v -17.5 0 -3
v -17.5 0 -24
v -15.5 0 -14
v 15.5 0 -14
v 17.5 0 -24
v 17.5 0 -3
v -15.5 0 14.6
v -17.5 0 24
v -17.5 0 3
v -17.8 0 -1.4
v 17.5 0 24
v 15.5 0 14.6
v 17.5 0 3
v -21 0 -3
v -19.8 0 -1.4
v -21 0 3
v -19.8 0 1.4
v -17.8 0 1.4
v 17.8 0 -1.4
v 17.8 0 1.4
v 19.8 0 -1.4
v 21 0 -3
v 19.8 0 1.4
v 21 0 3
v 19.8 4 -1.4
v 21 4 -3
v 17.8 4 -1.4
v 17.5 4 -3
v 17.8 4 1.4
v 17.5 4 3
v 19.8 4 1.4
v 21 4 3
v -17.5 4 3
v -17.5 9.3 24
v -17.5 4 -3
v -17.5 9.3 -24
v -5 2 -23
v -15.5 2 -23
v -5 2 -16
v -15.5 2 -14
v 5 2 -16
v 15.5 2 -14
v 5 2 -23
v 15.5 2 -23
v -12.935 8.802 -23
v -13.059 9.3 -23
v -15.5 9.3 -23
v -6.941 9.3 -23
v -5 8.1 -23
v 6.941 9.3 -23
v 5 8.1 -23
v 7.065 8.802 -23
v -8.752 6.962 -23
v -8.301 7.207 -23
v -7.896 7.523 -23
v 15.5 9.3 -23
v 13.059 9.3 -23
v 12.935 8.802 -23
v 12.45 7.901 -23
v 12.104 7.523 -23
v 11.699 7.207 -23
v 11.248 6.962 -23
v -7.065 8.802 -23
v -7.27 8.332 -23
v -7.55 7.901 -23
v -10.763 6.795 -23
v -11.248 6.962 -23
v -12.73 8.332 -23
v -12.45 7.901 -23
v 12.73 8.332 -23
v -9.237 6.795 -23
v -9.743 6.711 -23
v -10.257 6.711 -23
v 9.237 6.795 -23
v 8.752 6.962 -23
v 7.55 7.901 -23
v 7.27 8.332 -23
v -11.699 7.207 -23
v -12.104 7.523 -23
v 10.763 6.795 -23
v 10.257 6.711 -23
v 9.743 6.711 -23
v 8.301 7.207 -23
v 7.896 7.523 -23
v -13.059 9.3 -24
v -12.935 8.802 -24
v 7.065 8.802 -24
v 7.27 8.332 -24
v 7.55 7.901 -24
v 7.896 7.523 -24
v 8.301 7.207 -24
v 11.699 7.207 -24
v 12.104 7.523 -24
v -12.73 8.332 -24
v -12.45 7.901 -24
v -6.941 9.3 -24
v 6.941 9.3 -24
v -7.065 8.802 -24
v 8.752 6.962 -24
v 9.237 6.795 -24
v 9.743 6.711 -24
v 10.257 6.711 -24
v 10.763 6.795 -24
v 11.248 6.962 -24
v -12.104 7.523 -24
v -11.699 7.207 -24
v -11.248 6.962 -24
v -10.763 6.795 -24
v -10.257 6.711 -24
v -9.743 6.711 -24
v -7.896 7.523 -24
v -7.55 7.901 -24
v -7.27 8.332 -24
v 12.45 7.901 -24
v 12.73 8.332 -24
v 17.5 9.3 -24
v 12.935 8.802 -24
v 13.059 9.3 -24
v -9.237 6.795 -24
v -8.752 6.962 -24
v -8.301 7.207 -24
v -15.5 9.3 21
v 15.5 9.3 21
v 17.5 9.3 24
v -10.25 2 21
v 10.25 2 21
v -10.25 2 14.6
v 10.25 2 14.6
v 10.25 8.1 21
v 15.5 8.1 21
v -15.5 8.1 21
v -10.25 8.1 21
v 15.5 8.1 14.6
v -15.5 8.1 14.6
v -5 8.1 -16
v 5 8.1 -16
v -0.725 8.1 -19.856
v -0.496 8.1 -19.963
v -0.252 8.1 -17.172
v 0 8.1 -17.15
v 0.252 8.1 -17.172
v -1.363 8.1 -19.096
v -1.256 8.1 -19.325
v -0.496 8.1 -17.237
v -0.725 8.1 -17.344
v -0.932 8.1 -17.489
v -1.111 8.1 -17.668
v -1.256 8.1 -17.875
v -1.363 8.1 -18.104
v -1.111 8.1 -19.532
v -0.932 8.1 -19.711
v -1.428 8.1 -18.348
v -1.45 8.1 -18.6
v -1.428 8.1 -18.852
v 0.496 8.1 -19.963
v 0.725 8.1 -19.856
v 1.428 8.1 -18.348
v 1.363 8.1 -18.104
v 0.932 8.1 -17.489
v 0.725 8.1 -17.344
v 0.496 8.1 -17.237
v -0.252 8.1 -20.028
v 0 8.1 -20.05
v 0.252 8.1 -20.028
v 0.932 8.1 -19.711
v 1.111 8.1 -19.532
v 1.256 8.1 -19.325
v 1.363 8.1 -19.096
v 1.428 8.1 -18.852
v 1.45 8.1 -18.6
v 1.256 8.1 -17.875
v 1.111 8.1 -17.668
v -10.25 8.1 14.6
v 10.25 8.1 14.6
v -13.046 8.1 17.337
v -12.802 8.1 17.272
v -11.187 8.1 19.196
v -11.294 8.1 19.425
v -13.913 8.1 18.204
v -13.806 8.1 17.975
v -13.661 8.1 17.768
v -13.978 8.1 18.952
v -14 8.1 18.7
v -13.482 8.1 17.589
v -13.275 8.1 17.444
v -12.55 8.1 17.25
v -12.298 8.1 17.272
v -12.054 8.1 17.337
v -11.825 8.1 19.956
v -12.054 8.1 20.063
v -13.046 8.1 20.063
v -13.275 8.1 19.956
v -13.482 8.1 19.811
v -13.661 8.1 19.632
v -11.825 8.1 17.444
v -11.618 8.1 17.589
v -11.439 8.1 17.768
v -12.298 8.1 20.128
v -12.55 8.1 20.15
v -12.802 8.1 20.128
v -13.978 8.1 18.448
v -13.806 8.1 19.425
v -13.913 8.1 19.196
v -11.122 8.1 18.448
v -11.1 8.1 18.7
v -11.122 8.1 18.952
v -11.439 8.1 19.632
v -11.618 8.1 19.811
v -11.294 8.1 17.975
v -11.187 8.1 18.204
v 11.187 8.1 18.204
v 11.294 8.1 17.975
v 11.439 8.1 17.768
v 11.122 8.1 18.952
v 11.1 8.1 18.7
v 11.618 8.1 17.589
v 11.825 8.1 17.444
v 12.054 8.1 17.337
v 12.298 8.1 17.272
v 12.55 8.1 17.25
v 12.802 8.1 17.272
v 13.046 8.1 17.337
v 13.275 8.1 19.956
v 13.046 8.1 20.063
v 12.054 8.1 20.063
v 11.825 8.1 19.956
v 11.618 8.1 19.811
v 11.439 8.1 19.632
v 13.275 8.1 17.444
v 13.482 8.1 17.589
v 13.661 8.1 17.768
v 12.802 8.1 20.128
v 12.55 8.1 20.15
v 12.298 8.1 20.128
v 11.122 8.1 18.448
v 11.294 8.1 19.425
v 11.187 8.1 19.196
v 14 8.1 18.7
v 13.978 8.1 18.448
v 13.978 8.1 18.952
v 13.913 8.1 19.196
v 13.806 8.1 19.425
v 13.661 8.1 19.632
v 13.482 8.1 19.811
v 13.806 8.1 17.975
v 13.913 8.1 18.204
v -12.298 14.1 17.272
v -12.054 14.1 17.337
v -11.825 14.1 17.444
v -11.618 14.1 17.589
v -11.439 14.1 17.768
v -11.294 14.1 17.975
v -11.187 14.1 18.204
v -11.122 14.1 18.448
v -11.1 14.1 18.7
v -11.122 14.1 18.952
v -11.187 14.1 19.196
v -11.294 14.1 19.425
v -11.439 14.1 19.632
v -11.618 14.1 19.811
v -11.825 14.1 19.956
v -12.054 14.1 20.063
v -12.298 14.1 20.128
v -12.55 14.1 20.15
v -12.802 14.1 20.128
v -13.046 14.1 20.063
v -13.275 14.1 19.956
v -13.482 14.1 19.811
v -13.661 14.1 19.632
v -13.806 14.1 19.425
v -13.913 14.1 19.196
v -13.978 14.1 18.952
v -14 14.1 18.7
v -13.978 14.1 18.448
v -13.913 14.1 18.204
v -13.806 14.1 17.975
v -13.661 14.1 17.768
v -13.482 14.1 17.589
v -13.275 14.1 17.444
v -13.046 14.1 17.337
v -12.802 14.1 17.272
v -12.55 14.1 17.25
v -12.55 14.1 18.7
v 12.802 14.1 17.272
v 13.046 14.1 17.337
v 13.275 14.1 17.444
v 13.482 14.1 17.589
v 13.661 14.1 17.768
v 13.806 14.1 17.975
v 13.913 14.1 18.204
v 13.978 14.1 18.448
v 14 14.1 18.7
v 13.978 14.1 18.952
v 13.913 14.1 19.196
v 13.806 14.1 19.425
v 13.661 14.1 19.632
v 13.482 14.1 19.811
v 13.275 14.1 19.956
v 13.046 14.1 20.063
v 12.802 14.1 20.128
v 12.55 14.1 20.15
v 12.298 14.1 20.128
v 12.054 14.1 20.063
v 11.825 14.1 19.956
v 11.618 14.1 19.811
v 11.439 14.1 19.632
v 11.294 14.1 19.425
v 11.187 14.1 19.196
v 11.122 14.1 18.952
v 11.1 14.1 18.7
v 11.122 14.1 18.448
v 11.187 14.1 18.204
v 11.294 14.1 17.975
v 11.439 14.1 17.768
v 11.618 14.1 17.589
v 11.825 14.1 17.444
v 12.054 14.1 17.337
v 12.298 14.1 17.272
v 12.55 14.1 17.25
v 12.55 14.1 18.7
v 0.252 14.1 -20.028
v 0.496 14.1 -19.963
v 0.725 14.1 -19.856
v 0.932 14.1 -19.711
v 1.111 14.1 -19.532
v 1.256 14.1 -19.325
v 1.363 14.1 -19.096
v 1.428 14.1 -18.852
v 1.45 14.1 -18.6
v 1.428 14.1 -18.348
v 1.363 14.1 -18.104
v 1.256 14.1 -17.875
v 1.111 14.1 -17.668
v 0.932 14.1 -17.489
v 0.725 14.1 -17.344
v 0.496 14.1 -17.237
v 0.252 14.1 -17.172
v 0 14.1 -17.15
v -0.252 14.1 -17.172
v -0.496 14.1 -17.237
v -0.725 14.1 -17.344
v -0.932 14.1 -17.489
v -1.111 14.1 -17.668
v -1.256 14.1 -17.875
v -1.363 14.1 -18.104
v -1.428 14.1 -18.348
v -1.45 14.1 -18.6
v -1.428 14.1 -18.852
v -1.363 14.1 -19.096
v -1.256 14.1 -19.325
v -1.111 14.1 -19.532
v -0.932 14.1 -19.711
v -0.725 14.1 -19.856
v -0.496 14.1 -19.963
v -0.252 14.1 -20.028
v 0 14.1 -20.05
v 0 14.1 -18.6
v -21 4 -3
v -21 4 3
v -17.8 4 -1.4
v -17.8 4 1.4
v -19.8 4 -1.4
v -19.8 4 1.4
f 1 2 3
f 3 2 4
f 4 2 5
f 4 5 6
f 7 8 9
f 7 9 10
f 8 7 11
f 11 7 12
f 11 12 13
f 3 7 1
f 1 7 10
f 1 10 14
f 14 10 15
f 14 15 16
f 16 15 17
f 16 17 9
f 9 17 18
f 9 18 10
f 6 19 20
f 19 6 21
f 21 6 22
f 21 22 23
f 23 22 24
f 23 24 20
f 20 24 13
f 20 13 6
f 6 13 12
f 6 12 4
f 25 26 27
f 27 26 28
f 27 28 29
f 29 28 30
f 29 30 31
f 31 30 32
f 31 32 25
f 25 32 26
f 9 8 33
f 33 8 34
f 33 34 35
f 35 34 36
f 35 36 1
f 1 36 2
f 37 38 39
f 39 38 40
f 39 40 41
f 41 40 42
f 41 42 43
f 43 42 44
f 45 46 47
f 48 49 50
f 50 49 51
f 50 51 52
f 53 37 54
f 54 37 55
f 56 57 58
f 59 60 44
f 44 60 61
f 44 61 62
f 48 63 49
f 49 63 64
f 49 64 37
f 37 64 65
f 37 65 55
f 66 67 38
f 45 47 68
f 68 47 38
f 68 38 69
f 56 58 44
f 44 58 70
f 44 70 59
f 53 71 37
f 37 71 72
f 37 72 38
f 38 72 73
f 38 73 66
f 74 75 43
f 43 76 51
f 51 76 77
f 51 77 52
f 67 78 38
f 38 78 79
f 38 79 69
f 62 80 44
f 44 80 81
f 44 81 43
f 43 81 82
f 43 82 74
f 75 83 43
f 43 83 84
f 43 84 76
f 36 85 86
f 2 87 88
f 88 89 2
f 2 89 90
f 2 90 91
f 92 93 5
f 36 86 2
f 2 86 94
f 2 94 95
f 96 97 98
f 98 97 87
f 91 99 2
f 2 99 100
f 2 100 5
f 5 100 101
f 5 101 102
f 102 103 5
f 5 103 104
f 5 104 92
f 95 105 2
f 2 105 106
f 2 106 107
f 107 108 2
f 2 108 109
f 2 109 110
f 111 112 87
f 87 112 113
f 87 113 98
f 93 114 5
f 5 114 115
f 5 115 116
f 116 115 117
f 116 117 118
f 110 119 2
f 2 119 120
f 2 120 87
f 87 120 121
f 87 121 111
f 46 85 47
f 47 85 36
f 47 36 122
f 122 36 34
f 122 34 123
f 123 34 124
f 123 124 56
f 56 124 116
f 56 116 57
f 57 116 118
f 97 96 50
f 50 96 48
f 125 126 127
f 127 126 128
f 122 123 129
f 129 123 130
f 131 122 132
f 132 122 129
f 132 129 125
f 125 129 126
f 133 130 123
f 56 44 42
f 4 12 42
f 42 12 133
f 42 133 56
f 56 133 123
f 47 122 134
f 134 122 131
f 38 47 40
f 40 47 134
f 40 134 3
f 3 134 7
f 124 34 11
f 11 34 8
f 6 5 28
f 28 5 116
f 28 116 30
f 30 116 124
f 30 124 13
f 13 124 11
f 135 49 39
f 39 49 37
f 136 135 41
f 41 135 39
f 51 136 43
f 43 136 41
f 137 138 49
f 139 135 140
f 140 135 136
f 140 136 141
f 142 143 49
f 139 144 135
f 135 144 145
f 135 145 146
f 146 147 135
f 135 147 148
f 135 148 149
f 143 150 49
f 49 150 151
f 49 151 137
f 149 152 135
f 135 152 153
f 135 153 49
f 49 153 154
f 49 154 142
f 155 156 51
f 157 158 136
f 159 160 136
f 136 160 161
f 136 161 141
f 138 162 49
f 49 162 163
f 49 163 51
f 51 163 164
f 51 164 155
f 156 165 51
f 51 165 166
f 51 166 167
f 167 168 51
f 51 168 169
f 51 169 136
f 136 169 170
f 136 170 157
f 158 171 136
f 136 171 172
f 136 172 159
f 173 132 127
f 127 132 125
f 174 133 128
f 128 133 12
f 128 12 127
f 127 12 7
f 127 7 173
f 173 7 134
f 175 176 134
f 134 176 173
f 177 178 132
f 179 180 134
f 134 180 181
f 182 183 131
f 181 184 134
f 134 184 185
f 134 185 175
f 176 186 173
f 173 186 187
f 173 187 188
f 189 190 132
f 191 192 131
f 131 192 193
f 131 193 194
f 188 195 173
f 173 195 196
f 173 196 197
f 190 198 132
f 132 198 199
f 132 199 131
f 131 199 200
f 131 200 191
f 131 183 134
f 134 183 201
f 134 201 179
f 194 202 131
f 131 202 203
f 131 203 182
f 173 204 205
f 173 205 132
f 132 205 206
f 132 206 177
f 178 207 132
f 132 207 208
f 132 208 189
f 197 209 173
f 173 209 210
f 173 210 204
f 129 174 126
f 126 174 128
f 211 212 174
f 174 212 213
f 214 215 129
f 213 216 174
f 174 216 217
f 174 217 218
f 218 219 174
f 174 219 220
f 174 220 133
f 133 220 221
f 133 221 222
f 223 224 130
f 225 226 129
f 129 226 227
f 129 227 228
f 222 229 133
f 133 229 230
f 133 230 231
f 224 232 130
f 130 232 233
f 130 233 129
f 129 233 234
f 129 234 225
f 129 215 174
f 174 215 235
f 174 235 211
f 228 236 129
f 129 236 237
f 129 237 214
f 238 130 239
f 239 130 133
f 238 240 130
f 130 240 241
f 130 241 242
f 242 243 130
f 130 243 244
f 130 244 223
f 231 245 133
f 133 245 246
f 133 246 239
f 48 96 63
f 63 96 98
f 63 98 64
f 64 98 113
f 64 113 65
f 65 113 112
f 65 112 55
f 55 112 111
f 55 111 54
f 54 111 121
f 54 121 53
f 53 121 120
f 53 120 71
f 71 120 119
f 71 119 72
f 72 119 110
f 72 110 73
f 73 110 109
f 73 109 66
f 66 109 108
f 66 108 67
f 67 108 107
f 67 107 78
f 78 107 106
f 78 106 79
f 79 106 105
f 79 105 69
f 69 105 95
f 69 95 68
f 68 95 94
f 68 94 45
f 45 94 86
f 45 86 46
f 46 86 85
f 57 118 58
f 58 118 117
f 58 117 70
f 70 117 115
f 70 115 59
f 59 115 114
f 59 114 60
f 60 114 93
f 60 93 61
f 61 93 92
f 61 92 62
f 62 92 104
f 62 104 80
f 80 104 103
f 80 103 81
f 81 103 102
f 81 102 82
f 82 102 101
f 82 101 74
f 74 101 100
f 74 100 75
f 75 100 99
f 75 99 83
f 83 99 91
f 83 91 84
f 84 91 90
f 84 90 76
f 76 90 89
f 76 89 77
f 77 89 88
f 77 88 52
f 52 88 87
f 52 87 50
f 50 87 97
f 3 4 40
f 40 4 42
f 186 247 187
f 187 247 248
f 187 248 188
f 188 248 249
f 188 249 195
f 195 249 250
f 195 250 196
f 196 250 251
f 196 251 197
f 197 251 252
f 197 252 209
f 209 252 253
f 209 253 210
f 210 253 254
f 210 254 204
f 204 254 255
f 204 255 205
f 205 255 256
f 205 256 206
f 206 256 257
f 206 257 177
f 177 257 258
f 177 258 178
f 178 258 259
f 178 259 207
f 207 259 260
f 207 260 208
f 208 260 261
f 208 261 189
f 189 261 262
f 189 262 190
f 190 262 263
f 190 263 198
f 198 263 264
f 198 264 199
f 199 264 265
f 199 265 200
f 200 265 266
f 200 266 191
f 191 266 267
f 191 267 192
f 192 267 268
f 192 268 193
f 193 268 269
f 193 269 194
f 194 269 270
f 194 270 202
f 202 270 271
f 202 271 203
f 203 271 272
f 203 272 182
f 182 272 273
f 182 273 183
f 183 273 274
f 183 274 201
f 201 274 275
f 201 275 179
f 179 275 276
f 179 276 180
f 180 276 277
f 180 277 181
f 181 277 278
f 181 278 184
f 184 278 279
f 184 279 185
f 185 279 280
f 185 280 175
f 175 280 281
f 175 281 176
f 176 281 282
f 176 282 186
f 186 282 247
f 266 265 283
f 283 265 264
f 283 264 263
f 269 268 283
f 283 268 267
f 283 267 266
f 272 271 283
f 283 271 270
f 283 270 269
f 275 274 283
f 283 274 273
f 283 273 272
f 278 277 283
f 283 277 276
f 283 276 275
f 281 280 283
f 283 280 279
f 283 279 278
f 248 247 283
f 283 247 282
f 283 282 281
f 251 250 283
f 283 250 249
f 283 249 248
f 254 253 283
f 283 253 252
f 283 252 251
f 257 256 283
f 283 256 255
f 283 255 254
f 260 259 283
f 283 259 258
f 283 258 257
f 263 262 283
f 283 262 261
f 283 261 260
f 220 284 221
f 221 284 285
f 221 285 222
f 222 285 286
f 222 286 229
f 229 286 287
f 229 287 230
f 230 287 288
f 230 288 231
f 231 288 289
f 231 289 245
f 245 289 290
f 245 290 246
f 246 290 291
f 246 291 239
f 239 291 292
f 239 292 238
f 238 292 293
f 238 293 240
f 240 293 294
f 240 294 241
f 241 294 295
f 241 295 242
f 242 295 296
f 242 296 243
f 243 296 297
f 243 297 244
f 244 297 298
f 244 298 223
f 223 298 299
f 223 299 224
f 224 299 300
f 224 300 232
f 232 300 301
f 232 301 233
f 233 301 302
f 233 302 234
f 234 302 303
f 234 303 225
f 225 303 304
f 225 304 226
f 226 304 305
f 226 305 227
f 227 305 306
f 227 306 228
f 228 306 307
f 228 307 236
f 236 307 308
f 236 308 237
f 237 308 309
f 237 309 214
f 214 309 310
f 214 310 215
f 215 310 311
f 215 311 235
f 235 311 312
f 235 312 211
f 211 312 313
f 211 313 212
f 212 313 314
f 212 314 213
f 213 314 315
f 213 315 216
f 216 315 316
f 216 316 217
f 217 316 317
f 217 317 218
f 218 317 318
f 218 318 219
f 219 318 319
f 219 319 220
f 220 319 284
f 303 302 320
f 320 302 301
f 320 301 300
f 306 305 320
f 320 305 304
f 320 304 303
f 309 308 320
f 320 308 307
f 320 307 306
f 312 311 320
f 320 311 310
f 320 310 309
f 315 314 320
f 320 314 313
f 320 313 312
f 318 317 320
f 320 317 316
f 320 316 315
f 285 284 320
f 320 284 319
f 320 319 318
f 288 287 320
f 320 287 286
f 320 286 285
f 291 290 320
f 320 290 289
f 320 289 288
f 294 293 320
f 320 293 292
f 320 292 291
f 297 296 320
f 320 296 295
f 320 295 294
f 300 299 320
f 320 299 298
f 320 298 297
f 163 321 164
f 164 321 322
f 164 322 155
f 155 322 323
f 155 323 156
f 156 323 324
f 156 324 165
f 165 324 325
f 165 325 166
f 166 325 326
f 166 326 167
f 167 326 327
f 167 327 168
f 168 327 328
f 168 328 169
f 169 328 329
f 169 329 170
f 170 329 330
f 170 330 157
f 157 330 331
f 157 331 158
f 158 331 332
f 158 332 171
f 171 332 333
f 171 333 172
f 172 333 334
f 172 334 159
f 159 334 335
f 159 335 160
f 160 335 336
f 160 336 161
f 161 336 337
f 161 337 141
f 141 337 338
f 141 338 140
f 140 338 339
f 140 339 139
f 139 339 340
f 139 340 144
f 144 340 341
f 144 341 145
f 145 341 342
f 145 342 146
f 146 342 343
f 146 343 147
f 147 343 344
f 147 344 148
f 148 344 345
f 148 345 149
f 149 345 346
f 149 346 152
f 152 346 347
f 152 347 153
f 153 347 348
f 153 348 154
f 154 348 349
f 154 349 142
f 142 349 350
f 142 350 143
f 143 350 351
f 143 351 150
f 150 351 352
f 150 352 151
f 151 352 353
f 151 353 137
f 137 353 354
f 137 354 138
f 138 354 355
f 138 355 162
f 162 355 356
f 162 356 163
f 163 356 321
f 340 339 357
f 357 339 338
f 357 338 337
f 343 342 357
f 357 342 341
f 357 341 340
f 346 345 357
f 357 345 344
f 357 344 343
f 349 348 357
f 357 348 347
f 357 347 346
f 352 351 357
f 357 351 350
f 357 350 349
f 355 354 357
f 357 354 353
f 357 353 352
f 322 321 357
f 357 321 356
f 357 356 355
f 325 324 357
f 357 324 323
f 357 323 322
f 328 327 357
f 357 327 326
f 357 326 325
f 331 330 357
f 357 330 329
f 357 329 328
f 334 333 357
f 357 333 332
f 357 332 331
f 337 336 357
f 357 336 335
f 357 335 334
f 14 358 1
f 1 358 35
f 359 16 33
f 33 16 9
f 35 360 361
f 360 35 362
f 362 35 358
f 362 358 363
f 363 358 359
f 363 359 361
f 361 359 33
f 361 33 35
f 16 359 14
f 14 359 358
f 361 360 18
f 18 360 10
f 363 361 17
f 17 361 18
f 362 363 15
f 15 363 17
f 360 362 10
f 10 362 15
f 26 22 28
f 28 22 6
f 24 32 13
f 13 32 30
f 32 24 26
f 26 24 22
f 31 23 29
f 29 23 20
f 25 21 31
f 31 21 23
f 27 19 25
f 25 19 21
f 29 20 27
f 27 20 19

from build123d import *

# Parameters (mm, degrees)
SKETCH1_W           = 35
SKETCH1_H           = 48
BOSS_EXTRUDE1_DEPTH = 2
SKETCH2_W           = 35
SKETCH2_H           = 48
SKETCH2_W_2         = 31
SKETCH2_H_2         = 44
BOSS_EXTRUDE2_DEPTH = 7.3
SKETCH3_W           = 10
SKETCH3_H           = 7
SKETCH3_W_2         = 5.25
SKETCH3_H_2         = 6.4
BOSS_EXTRUDE3_DEPTH = 6.1
CUT_EXTRUDE5_DEPTH  = 1
SKETCH10_W          = 31
SKETCH10_H          = 28.6
CUT_EXTRUDE6_DEPTH  = 31.586598372
BOSS_EXTRUDE4_START = 8.1
SKETCH8_R           = 1.45
BOSS_EXTRUDE4_DEPTH = 6
SKETCH12_W          = 6
SKETCH12_H          = 4
BOSS_EXTRUDE5_DEPTH = 3.5
SKETCH13_W          = 2
SKETCH13_H          = 2.8
CUT_EXTRUDE7_DEPTH  = 4


with BuildPart() as part:
    # Sketch1 → Boss-Extrude1 (new body)
    with BuildSketch(Plane(origin=(0, 0, 0), x_dir=(1, 0, 0), z_dir=(0, 1, 0))):
        Rectangle(SKETCH1_W, SKETCH1_H)
    extrude(amount=BOSS_EXTRUDE1_DEPTH)

    # Sketch2 → Boss-Extrude2 (add)
    with BuildSketch(Plane(origin=(0, 2, 0), x_dir=(1, 0, 0), z_dir=(0, 1, 0))):
        Rectangle(SKETCH2_W, SKETCH2_H)
        with Locations((0, 1)):
            Rectangle(SKETCH2_W_2, SKETCH2_H_2, mode=Mode.SUBTRACT)
    extrude(amount=BOSS_EXTRUDE2_DEPTH)

    # Sketch3 → Boss-Extrude3 (add)
    with BuildSketch(Plane(origin=(0, 2, 0), x_dir=(1, 0, 0), z_dir=(0, 1, 0))):
        with Locations((0, 19.5)):
            Rectangle(SKETCH3_W, SKETCH3_H)
        with Locations((-12.875, -17.8)):
            Rectangle(SKETCH3_W_2, SKETCH3_H_2)
        with Locations((12.875, -17.8)):
            Rectangle(SKETCH3_W_2, SKETCH3_H_2)
    extrude(amount=BOSS_EXTRUDE3_DEPTH)

    # Sketch6 → Cut-Extrude5 (cut)
    with BuildSketch(Plane(origin=(0, 0, -24), x_dir=(-1, 0, 0), z_dir=(0, 0, -1))):
        with BuildLine():
            ThreePointArc((-13.059411708, 9.3), (-10, 6.7), (-6.940588292, 9.3))
            Line((-6.940588292, 9.3), (-13.059411708, 9.3))
        make_face()
        with BuildLine():
            Line((13.059411708, 9.3), (6.940588292, 9.3))
            ThreePointArc((6.940588292, 9.3), (10, 6.7), (13.059411708, 9.3))
        make_face()
    extrude(amount=-CUT_EXTRUDE5_DEPTH, mode=Mode.SUBTRACT)

    # Sketch10 → Cut-Extrude6 (cut, through all)
    with BuildSketch(Plane(origin=(0, 2, 0), x_dir=(1, 0, 0), z_dir=(0, 1, 0))):
        with Locations((0, -0.3)):
            Rectangle(SKETCH10_W, SKETCH10_H)
    extrude(amount=-CUT_EXTRUDE6_DEPTH, mode=Mode.SUBTRACT)

    # Sketch8 → Boss-Extrude4 (add)
    with BuildSketch(Plane(origin=(0, 0, 0), x_dir=(1, 0, 0), z_dir=(0, 1, 0)).offset(BOSS_EXTRUDE4_START)):
        with Locations(Location((-12.55, -18.7, 0), (0, 0, 90))):
            Circle(SKETCH8_R)
        with Locations(Location((12.55, -18.7, 0), (0, 0, 270))):
            Circle(SKETCH8_R)
        with Locations(Location((0, 18.6, 0), (0, 0, 270))):
            Circle(SKETCH8_R)
    extrude(amount=BOSS_EXTRUDE4_DEPTH)

    # Sketch12 → Boss-Extrude5 (add)
    with BuildSketch(Plane.ZY.offset(17.5)):
        with Locations((0, 2)):
            Rectangle(SKETCH12_W, SKETCH12_H)
    boss_extrude5 = extrude(amount=BOSS_EXTRUDE5_DEPTH)

    # Sketch13 → Cut-Extrude7 (cut)
    with BuildSketch(Plane(origin=(0, 4, 0), x_dir=(1, 0, 0), z_dir=(0, 1, 0))):
        with Locations((-18.8, 0)):
            Rectangle(SKETCH13_W, SKETCH13_H)
    cut_extrude7 = extrude(amount=-CUT_EXTRUDE7_DEPTH, mode=Mode.SUBTRACT)

    # Mirror1: Boss-Extrude5, Cut-Extrude7 across plane
    add(boss_extrude5.mirror(Plane(origin=(0, 0, 0), x_dir=(0, 0, 1), z_dir=(1, 0, 0))))
    add(cut_extrude7.mirror(Plane(origin=(0, 0, 0), x_dir=(0, 0, 1), z_dir=(1, 0, 0))), mode=Mode.SUBTRACT)


solid = part.part
